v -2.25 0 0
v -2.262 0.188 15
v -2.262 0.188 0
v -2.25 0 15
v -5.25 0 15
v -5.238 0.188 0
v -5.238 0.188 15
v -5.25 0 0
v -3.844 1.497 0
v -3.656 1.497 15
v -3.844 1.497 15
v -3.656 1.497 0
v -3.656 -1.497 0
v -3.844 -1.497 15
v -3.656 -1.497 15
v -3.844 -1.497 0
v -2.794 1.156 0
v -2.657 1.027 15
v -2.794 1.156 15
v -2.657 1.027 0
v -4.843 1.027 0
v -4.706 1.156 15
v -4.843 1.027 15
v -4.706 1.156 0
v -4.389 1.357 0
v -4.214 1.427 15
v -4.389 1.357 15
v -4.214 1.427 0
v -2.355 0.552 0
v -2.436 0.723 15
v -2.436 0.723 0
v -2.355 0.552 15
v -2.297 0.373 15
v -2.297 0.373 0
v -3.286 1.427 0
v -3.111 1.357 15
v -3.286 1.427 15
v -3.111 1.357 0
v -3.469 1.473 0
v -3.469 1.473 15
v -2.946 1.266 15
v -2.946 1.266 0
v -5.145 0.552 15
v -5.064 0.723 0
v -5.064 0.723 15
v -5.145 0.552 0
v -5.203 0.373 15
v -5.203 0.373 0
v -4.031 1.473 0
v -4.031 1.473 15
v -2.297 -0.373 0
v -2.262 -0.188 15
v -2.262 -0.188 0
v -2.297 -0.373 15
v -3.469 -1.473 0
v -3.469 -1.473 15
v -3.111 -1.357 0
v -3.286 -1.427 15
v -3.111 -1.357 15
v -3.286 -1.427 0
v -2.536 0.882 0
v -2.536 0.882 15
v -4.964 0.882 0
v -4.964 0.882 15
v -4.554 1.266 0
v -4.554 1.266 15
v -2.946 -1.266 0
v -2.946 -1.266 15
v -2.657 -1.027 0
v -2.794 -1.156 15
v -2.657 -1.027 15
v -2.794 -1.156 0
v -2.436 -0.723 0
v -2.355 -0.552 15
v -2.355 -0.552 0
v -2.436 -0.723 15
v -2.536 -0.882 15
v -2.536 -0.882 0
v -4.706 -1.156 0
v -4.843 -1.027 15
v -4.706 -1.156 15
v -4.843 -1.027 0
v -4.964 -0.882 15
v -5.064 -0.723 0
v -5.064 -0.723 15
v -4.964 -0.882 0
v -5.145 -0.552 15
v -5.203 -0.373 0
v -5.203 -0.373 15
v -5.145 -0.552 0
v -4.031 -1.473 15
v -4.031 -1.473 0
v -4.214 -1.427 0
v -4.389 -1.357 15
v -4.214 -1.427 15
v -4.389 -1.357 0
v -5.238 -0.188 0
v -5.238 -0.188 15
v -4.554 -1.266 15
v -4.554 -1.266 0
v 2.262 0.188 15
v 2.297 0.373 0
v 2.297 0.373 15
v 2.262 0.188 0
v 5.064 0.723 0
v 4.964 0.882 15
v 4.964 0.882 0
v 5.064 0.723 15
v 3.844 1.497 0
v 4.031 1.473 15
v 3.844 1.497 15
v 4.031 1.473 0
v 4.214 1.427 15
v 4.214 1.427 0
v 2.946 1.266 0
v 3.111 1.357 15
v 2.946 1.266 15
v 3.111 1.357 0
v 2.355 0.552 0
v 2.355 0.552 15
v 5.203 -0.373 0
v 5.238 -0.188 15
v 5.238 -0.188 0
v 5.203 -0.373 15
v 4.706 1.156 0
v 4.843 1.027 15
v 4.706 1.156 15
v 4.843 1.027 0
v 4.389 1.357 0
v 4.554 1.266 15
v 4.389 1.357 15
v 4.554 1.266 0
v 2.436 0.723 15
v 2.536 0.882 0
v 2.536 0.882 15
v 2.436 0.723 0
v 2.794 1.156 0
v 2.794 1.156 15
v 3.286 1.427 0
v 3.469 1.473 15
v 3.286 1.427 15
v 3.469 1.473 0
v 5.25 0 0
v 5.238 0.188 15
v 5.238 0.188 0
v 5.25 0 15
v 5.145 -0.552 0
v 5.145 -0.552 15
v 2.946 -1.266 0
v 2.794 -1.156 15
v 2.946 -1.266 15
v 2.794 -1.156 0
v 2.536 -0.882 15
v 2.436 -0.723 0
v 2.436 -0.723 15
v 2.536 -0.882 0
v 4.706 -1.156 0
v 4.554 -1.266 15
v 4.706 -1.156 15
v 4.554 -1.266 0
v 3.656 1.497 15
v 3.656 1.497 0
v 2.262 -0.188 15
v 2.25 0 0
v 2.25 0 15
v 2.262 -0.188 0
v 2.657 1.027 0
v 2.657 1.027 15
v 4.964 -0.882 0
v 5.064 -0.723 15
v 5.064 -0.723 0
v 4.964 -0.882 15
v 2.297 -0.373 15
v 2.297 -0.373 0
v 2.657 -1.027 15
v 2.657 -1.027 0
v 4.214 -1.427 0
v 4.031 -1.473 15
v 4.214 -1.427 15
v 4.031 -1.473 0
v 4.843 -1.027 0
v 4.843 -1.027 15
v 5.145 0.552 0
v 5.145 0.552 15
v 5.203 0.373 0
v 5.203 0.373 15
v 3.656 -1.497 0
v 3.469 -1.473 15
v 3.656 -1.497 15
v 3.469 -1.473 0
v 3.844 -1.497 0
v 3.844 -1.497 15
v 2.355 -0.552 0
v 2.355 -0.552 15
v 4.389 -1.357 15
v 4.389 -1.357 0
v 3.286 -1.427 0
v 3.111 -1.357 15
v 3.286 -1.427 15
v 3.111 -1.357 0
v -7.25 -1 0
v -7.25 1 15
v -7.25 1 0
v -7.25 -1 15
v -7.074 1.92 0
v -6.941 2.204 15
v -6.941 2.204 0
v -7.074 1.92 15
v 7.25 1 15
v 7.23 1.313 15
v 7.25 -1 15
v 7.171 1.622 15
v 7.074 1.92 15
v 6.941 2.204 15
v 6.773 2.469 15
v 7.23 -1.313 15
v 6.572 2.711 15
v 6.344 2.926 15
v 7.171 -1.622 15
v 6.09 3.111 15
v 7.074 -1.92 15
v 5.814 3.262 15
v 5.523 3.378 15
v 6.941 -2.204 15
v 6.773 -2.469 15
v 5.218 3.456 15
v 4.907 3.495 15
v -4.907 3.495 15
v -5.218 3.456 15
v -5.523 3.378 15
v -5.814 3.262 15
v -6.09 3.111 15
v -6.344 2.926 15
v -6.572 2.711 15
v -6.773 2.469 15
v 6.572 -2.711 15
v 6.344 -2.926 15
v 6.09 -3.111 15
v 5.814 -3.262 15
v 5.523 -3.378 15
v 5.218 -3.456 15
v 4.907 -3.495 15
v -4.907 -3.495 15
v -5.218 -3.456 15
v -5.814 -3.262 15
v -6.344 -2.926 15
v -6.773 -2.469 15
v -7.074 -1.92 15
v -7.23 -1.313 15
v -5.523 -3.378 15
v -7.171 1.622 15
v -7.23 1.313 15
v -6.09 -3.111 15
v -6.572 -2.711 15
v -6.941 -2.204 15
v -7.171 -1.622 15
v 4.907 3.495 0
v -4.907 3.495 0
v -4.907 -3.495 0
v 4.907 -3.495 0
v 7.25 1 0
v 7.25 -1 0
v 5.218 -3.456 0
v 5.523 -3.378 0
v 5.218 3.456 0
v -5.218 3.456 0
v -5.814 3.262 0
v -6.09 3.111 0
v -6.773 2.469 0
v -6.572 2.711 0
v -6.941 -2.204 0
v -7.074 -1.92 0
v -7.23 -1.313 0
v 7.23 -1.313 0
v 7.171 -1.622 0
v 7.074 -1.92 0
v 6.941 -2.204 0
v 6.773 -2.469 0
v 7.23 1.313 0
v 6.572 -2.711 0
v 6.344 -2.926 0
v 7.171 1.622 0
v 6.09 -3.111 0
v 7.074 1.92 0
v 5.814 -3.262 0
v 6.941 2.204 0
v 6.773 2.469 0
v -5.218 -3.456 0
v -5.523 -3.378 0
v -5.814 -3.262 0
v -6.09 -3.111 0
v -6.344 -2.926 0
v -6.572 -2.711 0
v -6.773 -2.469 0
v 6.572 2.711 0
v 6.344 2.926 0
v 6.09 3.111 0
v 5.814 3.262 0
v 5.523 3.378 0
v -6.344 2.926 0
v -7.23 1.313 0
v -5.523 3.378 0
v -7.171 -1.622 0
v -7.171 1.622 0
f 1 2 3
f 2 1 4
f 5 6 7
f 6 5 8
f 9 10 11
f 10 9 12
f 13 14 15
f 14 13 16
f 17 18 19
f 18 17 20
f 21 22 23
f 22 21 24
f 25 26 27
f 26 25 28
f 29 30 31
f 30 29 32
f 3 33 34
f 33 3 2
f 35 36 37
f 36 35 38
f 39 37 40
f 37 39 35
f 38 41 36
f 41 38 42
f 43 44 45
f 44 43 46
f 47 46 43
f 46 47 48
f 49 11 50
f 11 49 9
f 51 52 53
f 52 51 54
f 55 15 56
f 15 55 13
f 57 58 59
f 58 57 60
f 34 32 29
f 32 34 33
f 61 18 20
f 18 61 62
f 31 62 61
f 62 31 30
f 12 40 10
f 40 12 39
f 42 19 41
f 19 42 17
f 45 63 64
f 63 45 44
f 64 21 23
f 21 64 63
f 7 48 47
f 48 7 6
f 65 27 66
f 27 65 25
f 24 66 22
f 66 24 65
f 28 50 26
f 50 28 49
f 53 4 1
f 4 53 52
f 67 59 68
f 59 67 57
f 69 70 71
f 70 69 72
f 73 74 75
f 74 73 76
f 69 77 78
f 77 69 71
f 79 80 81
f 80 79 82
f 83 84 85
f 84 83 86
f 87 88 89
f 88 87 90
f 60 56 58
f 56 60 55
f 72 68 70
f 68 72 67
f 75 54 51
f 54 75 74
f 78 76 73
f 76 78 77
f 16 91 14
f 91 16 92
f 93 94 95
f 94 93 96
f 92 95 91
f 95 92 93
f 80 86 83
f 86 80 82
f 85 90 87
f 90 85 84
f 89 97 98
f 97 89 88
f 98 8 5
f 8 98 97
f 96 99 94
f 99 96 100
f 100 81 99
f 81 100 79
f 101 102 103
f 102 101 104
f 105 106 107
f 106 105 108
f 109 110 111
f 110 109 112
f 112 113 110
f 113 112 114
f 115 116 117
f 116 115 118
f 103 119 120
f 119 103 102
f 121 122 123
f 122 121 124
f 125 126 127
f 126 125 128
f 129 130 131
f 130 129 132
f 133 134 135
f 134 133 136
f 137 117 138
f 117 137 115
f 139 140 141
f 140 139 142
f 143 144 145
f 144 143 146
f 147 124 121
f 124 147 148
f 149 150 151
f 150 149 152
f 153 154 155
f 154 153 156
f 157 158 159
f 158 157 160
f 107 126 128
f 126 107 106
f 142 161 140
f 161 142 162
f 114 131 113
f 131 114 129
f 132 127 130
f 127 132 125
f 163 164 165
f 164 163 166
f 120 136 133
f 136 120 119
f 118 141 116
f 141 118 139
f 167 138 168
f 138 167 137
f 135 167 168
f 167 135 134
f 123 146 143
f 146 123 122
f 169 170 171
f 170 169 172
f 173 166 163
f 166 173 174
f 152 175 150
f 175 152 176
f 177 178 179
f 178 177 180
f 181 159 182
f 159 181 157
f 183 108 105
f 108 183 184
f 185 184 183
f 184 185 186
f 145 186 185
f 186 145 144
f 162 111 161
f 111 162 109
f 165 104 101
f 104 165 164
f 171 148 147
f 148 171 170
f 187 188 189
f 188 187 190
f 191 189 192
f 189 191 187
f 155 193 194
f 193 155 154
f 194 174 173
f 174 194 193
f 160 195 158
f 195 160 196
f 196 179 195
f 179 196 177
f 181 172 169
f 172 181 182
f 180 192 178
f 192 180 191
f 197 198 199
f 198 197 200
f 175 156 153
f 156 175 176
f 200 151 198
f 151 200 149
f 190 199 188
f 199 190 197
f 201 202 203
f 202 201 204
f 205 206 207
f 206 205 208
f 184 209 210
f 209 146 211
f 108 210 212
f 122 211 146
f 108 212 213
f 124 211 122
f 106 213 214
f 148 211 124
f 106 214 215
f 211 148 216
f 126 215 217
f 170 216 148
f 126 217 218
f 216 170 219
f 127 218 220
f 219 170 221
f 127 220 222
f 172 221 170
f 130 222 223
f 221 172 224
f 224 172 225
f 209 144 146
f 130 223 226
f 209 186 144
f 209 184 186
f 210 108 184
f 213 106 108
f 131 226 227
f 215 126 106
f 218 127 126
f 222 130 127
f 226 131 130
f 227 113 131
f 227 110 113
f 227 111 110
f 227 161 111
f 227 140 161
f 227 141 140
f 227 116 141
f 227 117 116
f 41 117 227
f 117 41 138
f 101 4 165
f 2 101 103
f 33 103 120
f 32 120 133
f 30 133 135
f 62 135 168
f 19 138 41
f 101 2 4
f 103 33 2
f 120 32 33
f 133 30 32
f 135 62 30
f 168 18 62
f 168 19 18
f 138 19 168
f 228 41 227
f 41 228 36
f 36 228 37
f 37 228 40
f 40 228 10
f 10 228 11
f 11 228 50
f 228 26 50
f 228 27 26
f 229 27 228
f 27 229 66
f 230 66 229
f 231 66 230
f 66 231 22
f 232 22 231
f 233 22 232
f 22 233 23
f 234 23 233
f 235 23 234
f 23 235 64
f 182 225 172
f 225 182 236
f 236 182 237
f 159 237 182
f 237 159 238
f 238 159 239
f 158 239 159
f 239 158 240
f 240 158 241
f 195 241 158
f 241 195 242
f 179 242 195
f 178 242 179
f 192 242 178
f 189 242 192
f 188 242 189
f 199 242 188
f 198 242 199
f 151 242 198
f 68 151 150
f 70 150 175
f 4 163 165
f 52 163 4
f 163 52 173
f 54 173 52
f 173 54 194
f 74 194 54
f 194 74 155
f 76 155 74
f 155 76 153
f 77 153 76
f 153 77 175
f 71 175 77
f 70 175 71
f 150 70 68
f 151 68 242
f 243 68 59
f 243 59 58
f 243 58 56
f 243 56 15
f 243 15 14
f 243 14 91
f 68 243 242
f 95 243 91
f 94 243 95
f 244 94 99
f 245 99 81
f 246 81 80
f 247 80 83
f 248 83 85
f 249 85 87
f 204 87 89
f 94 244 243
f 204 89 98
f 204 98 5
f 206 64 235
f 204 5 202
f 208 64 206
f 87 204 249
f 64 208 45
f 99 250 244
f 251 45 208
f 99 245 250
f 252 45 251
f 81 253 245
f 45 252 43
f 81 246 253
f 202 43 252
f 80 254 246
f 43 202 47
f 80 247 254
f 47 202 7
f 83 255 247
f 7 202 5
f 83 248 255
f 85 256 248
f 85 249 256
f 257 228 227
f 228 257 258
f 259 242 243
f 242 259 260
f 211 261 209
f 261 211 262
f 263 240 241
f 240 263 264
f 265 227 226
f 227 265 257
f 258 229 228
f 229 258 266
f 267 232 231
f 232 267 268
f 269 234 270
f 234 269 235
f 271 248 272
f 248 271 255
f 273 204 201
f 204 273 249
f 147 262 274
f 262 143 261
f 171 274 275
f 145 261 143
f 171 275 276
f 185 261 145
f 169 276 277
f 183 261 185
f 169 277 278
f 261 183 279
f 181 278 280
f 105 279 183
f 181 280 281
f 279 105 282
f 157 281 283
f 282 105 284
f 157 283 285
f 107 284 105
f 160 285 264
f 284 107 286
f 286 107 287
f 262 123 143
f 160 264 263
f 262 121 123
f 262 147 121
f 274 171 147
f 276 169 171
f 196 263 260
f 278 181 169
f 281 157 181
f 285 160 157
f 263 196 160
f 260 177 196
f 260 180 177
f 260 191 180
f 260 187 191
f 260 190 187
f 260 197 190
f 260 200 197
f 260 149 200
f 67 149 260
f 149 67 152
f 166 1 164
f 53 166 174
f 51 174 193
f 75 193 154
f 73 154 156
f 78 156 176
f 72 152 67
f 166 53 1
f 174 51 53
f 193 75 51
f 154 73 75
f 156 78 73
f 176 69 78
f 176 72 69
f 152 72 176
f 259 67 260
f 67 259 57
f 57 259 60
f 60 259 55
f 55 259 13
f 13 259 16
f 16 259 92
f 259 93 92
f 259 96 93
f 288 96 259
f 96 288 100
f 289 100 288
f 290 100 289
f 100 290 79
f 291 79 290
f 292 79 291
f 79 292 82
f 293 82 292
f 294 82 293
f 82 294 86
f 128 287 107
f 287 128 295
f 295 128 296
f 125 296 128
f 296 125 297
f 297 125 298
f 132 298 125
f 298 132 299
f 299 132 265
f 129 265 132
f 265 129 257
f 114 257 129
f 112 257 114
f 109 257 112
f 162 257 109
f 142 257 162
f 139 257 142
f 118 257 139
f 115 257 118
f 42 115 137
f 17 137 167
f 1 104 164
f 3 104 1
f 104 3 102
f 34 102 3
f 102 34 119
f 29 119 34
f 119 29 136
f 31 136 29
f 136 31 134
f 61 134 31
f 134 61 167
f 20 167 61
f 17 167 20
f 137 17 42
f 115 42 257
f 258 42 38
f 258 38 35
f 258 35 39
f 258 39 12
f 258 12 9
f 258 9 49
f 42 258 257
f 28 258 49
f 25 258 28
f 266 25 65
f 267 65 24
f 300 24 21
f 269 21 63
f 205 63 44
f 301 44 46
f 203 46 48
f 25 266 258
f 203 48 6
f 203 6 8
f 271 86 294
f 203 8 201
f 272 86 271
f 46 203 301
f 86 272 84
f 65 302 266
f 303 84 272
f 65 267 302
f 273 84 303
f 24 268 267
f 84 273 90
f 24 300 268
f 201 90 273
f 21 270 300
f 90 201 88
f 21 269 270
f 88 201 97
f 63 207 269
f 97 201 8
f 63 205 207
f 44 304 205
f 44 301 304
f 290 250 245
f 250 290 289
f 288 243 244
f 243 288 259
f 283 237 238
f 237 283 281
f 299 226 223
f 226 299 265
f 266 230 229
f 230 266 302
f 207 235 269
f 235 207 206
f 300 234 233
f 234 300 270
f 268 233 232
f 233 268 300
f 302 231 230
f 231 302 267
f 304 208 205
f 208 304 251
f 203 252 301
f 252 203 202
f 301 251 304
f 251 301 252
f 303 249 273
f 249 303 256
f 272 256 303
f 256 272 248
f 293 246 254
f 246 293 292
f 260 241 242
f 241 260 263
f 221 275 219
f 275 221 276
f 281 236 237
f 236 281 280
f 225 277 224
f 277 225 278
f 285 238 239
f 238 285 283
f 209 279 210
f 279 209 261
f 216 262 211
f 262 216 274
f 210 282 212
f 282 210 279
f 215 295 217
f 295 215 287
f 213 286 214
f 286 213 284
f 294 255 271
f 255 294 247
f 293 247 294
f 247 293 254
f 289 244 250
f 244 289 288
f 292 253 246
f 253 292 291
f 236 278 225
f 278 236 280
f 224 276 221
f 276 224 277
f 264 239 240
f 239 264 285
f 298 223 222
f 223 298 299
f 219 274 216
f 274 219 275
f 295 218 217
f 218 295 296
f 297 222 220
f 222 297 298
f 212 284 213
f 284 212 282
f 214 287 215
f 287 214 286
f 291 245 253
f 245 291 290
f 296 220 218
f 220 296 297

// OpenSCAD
$fn = 50;


difference() {
	union() {
		translate(v = [0, 0, 0]) {
			rotate(a = [0, 0, 0]) {
				hull() {
					translate(v = [-4.7500000000, 1.0000000000, 0]) {
						rotate(a = [0, 0, 0]) {
							translate(v = [0, 0, 0]) {
								rotate(a = [0, 0, 0]) {
									cylinder(h = 15, r = 2.5000000000);
								}
							}
						}
					}
					translate(v = [4.7500000000, 1.0000000000, 0]) {
						rotate(a = [0, 0, 0]) {
							translate(v = [0, 0, 0]) {
								rotate(a = [0, 0, 0]) {
									cylinder(h = 15, r = 2.5000000000);
								}
							}
						}
					}
					translate(v = [-4.7500000000, -1.0000000000, 0]) {
						rotate(a = [0, 0, 0]) {
							translate(v = [0, 0, 0]) {
								rotate(a = [0, 0, 0]) {
									cylinder(h = 15, r = 2.5000000000);
								}
							}
						}
					}
					translate(v = [4.7500000000, -1.0000000000, 0]) {
						rotate(a = [0, 0, 0]) {
							translate(v = [0, 0, 0]) {
								rotate(a = [0, 0, 0]) {
									cylinder(h = 15, r = 2.5000000000);
								}
							}
						}
					}
				}
			}
		}
	}
	union() {
		translate(v = [-3.7500000000, 0.0000000000, 0]) {
			rotate(a = [0, 0, 0]) {
				translate(v = [0, 0, -50]) {
					rotate(a = [0, 0, 0]) {
						cylinder(h = 100, r = 1.5000000000);
					}
				}
			}
		}
		translate(v = [3.7500000000, 0.0000000000, 0]) {
			rotate(a = [0, 0, 0]) {
				translate(v = [0, 0, -50]) {
					rotate(a = [0, 0, 0]) {
						cylinder(h = 100, r = 1.5000000000);
					}
				}
			}
		}
	}
}
